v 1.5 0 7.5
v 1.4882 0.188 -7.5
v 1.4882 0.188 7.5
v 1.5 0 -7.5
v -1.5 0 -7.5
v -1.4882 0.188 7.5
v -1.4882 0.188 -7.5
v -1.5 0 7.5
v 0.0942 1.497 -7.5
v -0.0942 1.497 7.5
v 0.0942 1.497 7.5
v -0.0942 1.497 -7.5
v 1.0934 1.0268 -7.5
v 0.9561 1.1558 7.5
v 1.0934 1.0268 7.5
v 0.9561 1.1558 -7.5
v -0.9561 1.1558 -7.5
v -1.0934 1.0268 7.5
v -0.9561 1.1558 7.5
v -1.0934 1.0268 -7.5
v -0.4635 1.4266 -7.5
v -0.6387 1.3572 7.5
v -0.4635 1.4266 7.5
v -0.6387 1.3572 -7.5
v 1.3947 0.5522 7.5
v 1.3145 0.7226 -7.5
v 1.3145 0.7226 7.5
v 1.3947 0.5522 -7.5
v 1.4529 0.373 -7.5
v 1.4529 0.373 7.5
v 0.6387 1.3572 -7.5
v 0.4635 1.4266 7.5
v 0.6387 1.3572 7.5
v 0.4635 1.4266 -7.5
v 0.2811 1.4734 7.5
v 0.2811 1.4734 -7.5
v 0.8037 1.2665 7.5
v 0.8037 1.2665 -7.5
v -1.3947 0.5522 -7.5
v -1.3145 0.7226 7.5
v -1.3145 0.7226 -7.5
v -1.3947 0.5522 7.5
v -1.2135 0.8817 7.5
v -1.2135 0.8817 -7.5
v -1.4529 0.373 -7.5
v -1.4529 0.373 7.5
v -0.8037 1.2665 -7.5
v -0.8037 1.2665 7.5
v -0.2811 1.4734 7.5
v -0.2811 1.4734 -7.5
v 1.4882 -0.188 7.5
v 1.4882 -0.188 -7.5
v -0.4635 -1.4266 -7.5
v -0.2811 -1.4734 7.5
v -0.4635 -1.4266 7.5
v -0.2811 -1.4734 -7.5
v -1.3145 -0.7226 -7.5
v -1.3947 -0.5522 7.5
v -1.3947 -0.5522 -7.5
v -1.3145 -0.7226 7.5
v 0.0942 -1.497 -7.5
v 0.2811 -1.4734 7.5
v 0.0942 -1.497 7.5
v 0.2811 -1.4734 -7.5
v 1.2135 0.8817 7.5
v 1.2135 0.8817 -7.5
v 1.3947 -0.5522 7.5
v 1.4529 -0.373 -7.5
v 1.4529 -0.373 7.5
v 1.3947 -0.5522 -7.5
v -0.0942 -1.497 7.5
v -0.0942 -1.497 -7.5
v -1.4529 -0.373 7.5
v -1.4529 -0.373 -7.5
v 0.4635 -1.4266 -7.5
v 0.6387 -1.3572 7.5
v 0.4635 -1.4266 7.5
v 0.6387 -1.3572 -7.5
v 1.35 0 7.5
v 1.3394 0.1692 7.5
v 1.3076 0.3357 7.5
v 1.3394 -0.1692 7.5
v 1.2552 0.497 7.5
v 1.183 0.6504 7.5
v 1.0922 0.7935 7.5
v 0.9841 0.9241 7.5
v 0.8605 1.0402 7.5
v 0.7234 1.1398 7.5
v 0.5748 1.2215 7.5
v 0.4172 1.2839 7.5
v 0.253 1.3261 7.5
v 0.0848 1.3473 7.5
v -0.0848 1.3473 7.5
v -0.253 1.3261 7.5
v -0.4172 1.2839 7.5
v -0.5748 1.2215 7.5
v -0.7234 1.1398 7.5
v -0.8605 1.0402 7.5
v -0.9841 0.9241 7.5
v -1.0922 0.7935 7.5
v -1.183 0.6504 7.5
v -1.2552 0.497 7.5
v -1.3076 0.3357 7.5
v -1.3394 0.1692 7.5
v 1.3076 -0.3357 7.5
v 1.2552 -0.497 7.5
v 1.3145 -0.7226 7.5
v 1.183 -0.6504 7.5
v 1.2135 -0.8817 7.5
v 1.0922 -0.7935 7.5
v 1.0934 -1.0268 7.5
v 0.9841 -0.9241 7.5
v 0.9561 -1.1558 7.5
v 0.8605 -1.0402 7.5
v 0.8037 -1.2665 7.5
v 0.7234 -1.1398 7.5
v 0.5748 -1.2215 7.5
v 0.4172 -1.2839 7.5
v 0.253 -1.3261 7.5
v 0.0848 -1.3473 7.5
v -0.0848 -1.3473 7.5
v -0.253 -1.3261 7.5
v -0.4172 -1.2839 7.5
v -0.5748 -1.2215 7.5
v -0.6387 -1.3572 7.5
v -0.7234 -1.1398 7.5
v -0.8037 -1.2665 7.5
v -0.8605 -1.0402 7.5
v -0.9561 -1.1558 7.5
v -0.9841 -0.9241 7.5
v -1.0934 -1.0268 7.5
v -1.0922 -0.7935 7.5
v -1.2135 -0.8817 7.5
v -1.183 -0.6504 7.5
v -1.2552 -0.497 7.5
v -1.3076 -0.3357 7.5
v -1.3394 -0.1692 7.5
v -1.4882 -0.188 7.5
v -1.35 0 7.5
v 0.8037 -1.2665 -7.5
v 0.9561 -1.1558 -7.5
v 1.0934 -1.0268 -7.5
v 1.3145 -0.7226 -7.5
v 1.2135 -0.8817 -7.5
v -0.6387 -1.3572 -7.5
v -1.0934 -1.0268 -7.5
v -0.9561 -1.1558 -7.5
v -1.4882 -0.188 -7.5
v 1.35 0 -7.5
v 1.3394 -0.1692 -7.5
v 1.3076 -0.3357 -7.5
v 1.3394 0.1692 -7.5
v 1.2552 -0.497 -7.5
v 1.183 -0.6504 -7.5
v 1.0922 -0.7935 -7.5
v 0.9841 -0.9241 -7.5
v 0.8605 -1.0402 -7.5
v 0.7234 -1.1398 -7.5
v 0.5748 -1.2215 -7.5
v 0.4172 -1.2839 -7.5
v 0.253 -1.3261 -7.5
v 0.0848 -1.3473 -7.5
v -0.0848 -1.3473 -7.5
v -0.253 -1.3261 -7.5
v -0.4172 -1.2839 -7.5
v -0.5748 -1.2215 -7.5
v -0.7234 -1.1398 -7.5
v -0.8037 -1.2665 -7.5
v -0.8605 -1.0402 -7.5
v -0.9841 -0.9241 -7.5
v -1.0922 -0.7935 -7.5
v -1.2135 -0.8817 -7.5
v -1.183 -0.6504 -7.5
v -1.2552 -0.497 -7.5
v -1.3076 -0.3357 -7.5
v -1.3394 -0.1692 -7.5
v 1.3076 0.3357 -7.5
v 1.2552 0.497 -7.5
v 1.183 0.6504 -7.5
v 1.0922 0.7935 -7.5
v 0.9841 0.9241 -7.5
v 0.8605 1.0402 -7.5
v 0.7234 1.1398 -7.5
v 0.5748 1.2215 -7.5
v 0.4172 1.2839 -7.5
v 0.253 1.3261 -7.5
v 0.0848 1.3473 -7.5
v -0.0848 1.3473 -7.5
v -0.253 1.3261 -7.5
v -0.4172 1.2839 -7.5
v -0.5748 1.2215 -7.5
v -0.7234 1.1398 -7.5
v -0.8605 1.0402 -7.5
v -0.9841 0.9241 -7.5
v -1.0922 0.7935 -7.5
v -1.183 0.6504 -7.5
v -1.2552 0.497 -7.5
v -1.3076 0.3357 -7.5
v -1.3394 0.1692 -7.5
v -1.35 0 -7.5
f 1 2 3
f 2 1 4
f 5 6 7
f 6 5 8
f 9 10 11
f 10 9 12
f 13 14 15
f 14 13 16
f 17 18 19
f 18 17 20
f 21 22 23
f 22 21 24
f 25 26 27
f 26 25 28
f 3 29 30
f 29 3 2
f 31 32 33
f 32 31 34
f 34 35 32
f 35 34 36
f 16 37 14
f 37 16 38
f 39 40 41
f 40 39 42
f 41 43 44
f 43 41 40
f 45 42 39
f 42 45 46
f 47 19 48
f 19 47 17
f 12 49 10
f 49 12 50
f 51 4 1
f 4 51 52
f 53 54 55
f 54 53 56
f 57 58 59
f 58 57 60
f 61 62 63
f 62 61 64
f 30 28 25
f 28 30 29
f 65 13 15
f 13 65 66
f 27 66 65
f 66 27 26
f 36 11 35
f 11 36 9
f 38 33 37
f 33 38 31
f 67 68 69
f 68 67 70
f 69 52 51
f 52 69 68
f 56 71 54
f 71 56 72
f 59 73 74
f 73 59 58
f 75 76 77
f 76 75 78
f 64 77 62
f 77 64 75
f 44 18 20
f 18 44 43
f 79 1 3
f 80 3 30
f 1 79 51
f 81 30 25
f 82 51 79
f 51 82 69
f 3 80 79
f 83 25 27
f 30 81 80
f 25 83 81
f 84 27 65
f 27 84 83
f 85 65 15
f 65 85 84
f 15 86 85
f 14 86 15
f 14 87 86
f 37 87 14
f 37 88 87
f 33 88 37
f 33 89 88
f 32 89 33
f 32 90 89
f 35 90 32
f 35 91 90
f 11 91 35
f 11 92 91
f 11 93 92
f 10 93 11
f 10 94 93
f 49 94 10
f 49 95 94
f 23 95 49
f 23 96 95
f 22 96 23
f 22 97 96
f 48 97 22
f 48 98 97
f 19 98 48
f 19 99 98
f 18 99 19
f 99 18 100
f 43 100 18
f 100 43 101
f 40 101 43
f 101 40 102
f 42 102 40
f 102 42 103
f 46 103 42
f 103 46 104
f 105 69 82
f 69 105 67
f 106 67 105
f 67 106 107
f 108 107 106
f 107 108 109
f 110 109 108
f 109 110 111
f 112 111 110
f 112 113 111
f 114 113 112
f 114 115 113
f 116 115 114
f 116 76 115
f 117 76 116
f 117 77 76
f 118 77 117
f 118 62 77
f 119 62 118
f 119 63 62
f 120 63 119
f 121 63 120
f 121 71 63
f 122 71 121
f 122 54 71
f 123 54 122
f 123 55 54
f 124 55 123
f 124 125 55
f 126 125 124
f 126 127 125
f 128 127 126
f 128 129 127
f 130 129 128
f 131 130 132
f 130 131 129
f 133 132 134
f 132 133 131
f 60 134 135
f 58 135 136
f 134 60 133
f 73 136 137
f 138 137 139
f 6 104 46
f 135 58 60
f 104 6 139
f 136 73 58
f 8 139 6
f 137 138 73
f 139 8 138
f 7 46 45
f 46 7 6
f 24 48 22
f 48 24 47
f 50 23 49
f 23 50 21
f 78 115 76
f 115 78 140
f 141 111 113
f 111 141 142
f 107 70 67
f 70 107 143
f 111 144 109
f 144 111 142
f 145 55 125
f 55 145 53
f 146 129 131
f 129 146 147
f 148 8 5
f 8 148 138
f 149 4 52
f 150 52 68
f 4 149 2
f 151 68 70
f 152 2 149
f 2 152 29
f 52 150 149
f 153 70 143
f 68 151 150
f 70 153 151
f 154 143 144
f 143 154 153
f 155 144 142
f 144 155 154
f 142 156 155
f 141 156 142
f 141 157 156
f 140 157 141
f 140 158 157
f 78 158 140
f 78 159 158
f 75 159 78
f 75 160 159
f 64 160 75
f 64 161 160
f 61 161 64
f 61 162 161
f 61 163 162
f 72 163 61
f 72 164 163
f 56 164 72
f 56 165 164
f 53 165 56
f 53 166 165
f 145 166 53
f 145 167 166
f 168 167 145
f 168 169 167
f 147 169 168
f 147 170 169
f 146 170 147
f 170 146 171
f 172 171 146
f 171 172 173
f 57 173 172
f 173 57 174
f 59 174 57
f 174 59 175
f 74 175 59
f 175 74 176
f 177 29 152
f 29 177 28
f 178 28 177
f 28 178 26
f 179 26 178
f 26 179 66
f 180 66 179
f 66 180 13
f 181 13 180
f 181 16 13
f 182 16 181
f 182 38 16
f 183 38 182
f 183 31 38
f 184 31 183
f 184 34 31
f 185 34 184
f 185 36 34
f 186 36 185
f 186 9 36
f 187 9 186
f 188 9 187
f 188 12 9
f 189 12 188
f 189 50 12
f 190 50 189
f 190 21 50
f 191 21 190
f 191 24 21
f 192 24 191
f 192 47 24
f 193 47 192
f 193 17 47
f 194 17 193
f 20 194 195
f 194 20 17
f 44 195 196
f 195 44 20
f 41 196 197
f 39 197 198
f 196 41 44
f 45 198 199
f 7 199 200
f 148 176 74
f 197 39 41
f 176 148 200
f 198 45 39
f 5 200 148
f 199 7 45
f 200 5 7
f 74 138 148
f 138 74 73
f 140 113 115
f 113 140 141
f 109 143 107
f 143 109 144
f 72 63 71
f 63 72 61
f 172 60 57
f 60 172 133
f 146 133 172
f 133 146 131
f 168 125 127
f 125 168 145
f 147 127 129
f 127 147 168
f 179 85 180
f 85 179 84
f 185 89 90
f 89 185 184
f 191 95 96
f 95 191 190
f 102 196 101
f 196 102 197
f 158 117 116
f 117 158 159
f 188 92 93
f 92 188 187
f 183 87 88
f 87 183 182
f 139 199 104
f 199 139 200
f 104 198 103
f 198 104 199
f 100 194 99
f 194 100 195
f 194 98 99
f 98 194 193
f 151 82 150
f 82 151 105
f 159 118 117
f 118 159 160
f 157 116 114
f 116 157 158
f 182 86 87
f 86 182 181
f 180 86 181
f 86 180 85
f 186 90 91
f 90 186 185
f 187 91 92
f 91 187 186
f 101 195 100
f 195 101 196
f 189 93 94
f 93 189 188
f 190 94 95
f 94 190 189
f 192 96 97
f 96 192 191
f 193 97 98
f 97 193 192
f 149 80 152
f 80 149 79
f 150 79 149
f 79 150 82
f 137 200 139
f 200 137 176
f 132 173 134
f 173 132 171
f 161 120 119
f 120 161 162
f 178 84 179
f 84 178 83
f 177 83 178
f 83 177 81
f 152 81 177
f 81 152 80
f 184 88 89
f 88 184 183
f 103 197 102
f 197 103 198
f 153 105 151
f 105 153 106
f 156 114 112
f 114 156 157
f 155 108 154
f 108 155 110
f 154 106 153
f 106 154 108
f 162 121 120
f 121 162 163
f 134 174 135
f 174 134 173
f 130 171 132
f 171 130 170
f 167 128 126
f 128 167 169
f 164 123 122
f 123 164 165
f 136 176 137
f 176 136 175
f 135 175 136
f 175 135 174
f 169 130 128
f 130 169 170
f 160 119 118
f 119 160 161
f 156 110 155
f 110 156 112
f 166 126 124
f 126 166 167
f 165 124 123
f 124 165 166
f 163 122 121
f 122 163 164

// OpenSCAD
$fn = 50;


difference() {
	union() {
		translate(v = [0, 0, -7.5000000000]) {
			cylinder(h = 15, r = 1.5000000000);
		}
	}
	union() {
		translate(v = [0, 0, -100.0000000000]) {
			cylinder(h = 200, r = 1.3500000000);
		}
	}
}
